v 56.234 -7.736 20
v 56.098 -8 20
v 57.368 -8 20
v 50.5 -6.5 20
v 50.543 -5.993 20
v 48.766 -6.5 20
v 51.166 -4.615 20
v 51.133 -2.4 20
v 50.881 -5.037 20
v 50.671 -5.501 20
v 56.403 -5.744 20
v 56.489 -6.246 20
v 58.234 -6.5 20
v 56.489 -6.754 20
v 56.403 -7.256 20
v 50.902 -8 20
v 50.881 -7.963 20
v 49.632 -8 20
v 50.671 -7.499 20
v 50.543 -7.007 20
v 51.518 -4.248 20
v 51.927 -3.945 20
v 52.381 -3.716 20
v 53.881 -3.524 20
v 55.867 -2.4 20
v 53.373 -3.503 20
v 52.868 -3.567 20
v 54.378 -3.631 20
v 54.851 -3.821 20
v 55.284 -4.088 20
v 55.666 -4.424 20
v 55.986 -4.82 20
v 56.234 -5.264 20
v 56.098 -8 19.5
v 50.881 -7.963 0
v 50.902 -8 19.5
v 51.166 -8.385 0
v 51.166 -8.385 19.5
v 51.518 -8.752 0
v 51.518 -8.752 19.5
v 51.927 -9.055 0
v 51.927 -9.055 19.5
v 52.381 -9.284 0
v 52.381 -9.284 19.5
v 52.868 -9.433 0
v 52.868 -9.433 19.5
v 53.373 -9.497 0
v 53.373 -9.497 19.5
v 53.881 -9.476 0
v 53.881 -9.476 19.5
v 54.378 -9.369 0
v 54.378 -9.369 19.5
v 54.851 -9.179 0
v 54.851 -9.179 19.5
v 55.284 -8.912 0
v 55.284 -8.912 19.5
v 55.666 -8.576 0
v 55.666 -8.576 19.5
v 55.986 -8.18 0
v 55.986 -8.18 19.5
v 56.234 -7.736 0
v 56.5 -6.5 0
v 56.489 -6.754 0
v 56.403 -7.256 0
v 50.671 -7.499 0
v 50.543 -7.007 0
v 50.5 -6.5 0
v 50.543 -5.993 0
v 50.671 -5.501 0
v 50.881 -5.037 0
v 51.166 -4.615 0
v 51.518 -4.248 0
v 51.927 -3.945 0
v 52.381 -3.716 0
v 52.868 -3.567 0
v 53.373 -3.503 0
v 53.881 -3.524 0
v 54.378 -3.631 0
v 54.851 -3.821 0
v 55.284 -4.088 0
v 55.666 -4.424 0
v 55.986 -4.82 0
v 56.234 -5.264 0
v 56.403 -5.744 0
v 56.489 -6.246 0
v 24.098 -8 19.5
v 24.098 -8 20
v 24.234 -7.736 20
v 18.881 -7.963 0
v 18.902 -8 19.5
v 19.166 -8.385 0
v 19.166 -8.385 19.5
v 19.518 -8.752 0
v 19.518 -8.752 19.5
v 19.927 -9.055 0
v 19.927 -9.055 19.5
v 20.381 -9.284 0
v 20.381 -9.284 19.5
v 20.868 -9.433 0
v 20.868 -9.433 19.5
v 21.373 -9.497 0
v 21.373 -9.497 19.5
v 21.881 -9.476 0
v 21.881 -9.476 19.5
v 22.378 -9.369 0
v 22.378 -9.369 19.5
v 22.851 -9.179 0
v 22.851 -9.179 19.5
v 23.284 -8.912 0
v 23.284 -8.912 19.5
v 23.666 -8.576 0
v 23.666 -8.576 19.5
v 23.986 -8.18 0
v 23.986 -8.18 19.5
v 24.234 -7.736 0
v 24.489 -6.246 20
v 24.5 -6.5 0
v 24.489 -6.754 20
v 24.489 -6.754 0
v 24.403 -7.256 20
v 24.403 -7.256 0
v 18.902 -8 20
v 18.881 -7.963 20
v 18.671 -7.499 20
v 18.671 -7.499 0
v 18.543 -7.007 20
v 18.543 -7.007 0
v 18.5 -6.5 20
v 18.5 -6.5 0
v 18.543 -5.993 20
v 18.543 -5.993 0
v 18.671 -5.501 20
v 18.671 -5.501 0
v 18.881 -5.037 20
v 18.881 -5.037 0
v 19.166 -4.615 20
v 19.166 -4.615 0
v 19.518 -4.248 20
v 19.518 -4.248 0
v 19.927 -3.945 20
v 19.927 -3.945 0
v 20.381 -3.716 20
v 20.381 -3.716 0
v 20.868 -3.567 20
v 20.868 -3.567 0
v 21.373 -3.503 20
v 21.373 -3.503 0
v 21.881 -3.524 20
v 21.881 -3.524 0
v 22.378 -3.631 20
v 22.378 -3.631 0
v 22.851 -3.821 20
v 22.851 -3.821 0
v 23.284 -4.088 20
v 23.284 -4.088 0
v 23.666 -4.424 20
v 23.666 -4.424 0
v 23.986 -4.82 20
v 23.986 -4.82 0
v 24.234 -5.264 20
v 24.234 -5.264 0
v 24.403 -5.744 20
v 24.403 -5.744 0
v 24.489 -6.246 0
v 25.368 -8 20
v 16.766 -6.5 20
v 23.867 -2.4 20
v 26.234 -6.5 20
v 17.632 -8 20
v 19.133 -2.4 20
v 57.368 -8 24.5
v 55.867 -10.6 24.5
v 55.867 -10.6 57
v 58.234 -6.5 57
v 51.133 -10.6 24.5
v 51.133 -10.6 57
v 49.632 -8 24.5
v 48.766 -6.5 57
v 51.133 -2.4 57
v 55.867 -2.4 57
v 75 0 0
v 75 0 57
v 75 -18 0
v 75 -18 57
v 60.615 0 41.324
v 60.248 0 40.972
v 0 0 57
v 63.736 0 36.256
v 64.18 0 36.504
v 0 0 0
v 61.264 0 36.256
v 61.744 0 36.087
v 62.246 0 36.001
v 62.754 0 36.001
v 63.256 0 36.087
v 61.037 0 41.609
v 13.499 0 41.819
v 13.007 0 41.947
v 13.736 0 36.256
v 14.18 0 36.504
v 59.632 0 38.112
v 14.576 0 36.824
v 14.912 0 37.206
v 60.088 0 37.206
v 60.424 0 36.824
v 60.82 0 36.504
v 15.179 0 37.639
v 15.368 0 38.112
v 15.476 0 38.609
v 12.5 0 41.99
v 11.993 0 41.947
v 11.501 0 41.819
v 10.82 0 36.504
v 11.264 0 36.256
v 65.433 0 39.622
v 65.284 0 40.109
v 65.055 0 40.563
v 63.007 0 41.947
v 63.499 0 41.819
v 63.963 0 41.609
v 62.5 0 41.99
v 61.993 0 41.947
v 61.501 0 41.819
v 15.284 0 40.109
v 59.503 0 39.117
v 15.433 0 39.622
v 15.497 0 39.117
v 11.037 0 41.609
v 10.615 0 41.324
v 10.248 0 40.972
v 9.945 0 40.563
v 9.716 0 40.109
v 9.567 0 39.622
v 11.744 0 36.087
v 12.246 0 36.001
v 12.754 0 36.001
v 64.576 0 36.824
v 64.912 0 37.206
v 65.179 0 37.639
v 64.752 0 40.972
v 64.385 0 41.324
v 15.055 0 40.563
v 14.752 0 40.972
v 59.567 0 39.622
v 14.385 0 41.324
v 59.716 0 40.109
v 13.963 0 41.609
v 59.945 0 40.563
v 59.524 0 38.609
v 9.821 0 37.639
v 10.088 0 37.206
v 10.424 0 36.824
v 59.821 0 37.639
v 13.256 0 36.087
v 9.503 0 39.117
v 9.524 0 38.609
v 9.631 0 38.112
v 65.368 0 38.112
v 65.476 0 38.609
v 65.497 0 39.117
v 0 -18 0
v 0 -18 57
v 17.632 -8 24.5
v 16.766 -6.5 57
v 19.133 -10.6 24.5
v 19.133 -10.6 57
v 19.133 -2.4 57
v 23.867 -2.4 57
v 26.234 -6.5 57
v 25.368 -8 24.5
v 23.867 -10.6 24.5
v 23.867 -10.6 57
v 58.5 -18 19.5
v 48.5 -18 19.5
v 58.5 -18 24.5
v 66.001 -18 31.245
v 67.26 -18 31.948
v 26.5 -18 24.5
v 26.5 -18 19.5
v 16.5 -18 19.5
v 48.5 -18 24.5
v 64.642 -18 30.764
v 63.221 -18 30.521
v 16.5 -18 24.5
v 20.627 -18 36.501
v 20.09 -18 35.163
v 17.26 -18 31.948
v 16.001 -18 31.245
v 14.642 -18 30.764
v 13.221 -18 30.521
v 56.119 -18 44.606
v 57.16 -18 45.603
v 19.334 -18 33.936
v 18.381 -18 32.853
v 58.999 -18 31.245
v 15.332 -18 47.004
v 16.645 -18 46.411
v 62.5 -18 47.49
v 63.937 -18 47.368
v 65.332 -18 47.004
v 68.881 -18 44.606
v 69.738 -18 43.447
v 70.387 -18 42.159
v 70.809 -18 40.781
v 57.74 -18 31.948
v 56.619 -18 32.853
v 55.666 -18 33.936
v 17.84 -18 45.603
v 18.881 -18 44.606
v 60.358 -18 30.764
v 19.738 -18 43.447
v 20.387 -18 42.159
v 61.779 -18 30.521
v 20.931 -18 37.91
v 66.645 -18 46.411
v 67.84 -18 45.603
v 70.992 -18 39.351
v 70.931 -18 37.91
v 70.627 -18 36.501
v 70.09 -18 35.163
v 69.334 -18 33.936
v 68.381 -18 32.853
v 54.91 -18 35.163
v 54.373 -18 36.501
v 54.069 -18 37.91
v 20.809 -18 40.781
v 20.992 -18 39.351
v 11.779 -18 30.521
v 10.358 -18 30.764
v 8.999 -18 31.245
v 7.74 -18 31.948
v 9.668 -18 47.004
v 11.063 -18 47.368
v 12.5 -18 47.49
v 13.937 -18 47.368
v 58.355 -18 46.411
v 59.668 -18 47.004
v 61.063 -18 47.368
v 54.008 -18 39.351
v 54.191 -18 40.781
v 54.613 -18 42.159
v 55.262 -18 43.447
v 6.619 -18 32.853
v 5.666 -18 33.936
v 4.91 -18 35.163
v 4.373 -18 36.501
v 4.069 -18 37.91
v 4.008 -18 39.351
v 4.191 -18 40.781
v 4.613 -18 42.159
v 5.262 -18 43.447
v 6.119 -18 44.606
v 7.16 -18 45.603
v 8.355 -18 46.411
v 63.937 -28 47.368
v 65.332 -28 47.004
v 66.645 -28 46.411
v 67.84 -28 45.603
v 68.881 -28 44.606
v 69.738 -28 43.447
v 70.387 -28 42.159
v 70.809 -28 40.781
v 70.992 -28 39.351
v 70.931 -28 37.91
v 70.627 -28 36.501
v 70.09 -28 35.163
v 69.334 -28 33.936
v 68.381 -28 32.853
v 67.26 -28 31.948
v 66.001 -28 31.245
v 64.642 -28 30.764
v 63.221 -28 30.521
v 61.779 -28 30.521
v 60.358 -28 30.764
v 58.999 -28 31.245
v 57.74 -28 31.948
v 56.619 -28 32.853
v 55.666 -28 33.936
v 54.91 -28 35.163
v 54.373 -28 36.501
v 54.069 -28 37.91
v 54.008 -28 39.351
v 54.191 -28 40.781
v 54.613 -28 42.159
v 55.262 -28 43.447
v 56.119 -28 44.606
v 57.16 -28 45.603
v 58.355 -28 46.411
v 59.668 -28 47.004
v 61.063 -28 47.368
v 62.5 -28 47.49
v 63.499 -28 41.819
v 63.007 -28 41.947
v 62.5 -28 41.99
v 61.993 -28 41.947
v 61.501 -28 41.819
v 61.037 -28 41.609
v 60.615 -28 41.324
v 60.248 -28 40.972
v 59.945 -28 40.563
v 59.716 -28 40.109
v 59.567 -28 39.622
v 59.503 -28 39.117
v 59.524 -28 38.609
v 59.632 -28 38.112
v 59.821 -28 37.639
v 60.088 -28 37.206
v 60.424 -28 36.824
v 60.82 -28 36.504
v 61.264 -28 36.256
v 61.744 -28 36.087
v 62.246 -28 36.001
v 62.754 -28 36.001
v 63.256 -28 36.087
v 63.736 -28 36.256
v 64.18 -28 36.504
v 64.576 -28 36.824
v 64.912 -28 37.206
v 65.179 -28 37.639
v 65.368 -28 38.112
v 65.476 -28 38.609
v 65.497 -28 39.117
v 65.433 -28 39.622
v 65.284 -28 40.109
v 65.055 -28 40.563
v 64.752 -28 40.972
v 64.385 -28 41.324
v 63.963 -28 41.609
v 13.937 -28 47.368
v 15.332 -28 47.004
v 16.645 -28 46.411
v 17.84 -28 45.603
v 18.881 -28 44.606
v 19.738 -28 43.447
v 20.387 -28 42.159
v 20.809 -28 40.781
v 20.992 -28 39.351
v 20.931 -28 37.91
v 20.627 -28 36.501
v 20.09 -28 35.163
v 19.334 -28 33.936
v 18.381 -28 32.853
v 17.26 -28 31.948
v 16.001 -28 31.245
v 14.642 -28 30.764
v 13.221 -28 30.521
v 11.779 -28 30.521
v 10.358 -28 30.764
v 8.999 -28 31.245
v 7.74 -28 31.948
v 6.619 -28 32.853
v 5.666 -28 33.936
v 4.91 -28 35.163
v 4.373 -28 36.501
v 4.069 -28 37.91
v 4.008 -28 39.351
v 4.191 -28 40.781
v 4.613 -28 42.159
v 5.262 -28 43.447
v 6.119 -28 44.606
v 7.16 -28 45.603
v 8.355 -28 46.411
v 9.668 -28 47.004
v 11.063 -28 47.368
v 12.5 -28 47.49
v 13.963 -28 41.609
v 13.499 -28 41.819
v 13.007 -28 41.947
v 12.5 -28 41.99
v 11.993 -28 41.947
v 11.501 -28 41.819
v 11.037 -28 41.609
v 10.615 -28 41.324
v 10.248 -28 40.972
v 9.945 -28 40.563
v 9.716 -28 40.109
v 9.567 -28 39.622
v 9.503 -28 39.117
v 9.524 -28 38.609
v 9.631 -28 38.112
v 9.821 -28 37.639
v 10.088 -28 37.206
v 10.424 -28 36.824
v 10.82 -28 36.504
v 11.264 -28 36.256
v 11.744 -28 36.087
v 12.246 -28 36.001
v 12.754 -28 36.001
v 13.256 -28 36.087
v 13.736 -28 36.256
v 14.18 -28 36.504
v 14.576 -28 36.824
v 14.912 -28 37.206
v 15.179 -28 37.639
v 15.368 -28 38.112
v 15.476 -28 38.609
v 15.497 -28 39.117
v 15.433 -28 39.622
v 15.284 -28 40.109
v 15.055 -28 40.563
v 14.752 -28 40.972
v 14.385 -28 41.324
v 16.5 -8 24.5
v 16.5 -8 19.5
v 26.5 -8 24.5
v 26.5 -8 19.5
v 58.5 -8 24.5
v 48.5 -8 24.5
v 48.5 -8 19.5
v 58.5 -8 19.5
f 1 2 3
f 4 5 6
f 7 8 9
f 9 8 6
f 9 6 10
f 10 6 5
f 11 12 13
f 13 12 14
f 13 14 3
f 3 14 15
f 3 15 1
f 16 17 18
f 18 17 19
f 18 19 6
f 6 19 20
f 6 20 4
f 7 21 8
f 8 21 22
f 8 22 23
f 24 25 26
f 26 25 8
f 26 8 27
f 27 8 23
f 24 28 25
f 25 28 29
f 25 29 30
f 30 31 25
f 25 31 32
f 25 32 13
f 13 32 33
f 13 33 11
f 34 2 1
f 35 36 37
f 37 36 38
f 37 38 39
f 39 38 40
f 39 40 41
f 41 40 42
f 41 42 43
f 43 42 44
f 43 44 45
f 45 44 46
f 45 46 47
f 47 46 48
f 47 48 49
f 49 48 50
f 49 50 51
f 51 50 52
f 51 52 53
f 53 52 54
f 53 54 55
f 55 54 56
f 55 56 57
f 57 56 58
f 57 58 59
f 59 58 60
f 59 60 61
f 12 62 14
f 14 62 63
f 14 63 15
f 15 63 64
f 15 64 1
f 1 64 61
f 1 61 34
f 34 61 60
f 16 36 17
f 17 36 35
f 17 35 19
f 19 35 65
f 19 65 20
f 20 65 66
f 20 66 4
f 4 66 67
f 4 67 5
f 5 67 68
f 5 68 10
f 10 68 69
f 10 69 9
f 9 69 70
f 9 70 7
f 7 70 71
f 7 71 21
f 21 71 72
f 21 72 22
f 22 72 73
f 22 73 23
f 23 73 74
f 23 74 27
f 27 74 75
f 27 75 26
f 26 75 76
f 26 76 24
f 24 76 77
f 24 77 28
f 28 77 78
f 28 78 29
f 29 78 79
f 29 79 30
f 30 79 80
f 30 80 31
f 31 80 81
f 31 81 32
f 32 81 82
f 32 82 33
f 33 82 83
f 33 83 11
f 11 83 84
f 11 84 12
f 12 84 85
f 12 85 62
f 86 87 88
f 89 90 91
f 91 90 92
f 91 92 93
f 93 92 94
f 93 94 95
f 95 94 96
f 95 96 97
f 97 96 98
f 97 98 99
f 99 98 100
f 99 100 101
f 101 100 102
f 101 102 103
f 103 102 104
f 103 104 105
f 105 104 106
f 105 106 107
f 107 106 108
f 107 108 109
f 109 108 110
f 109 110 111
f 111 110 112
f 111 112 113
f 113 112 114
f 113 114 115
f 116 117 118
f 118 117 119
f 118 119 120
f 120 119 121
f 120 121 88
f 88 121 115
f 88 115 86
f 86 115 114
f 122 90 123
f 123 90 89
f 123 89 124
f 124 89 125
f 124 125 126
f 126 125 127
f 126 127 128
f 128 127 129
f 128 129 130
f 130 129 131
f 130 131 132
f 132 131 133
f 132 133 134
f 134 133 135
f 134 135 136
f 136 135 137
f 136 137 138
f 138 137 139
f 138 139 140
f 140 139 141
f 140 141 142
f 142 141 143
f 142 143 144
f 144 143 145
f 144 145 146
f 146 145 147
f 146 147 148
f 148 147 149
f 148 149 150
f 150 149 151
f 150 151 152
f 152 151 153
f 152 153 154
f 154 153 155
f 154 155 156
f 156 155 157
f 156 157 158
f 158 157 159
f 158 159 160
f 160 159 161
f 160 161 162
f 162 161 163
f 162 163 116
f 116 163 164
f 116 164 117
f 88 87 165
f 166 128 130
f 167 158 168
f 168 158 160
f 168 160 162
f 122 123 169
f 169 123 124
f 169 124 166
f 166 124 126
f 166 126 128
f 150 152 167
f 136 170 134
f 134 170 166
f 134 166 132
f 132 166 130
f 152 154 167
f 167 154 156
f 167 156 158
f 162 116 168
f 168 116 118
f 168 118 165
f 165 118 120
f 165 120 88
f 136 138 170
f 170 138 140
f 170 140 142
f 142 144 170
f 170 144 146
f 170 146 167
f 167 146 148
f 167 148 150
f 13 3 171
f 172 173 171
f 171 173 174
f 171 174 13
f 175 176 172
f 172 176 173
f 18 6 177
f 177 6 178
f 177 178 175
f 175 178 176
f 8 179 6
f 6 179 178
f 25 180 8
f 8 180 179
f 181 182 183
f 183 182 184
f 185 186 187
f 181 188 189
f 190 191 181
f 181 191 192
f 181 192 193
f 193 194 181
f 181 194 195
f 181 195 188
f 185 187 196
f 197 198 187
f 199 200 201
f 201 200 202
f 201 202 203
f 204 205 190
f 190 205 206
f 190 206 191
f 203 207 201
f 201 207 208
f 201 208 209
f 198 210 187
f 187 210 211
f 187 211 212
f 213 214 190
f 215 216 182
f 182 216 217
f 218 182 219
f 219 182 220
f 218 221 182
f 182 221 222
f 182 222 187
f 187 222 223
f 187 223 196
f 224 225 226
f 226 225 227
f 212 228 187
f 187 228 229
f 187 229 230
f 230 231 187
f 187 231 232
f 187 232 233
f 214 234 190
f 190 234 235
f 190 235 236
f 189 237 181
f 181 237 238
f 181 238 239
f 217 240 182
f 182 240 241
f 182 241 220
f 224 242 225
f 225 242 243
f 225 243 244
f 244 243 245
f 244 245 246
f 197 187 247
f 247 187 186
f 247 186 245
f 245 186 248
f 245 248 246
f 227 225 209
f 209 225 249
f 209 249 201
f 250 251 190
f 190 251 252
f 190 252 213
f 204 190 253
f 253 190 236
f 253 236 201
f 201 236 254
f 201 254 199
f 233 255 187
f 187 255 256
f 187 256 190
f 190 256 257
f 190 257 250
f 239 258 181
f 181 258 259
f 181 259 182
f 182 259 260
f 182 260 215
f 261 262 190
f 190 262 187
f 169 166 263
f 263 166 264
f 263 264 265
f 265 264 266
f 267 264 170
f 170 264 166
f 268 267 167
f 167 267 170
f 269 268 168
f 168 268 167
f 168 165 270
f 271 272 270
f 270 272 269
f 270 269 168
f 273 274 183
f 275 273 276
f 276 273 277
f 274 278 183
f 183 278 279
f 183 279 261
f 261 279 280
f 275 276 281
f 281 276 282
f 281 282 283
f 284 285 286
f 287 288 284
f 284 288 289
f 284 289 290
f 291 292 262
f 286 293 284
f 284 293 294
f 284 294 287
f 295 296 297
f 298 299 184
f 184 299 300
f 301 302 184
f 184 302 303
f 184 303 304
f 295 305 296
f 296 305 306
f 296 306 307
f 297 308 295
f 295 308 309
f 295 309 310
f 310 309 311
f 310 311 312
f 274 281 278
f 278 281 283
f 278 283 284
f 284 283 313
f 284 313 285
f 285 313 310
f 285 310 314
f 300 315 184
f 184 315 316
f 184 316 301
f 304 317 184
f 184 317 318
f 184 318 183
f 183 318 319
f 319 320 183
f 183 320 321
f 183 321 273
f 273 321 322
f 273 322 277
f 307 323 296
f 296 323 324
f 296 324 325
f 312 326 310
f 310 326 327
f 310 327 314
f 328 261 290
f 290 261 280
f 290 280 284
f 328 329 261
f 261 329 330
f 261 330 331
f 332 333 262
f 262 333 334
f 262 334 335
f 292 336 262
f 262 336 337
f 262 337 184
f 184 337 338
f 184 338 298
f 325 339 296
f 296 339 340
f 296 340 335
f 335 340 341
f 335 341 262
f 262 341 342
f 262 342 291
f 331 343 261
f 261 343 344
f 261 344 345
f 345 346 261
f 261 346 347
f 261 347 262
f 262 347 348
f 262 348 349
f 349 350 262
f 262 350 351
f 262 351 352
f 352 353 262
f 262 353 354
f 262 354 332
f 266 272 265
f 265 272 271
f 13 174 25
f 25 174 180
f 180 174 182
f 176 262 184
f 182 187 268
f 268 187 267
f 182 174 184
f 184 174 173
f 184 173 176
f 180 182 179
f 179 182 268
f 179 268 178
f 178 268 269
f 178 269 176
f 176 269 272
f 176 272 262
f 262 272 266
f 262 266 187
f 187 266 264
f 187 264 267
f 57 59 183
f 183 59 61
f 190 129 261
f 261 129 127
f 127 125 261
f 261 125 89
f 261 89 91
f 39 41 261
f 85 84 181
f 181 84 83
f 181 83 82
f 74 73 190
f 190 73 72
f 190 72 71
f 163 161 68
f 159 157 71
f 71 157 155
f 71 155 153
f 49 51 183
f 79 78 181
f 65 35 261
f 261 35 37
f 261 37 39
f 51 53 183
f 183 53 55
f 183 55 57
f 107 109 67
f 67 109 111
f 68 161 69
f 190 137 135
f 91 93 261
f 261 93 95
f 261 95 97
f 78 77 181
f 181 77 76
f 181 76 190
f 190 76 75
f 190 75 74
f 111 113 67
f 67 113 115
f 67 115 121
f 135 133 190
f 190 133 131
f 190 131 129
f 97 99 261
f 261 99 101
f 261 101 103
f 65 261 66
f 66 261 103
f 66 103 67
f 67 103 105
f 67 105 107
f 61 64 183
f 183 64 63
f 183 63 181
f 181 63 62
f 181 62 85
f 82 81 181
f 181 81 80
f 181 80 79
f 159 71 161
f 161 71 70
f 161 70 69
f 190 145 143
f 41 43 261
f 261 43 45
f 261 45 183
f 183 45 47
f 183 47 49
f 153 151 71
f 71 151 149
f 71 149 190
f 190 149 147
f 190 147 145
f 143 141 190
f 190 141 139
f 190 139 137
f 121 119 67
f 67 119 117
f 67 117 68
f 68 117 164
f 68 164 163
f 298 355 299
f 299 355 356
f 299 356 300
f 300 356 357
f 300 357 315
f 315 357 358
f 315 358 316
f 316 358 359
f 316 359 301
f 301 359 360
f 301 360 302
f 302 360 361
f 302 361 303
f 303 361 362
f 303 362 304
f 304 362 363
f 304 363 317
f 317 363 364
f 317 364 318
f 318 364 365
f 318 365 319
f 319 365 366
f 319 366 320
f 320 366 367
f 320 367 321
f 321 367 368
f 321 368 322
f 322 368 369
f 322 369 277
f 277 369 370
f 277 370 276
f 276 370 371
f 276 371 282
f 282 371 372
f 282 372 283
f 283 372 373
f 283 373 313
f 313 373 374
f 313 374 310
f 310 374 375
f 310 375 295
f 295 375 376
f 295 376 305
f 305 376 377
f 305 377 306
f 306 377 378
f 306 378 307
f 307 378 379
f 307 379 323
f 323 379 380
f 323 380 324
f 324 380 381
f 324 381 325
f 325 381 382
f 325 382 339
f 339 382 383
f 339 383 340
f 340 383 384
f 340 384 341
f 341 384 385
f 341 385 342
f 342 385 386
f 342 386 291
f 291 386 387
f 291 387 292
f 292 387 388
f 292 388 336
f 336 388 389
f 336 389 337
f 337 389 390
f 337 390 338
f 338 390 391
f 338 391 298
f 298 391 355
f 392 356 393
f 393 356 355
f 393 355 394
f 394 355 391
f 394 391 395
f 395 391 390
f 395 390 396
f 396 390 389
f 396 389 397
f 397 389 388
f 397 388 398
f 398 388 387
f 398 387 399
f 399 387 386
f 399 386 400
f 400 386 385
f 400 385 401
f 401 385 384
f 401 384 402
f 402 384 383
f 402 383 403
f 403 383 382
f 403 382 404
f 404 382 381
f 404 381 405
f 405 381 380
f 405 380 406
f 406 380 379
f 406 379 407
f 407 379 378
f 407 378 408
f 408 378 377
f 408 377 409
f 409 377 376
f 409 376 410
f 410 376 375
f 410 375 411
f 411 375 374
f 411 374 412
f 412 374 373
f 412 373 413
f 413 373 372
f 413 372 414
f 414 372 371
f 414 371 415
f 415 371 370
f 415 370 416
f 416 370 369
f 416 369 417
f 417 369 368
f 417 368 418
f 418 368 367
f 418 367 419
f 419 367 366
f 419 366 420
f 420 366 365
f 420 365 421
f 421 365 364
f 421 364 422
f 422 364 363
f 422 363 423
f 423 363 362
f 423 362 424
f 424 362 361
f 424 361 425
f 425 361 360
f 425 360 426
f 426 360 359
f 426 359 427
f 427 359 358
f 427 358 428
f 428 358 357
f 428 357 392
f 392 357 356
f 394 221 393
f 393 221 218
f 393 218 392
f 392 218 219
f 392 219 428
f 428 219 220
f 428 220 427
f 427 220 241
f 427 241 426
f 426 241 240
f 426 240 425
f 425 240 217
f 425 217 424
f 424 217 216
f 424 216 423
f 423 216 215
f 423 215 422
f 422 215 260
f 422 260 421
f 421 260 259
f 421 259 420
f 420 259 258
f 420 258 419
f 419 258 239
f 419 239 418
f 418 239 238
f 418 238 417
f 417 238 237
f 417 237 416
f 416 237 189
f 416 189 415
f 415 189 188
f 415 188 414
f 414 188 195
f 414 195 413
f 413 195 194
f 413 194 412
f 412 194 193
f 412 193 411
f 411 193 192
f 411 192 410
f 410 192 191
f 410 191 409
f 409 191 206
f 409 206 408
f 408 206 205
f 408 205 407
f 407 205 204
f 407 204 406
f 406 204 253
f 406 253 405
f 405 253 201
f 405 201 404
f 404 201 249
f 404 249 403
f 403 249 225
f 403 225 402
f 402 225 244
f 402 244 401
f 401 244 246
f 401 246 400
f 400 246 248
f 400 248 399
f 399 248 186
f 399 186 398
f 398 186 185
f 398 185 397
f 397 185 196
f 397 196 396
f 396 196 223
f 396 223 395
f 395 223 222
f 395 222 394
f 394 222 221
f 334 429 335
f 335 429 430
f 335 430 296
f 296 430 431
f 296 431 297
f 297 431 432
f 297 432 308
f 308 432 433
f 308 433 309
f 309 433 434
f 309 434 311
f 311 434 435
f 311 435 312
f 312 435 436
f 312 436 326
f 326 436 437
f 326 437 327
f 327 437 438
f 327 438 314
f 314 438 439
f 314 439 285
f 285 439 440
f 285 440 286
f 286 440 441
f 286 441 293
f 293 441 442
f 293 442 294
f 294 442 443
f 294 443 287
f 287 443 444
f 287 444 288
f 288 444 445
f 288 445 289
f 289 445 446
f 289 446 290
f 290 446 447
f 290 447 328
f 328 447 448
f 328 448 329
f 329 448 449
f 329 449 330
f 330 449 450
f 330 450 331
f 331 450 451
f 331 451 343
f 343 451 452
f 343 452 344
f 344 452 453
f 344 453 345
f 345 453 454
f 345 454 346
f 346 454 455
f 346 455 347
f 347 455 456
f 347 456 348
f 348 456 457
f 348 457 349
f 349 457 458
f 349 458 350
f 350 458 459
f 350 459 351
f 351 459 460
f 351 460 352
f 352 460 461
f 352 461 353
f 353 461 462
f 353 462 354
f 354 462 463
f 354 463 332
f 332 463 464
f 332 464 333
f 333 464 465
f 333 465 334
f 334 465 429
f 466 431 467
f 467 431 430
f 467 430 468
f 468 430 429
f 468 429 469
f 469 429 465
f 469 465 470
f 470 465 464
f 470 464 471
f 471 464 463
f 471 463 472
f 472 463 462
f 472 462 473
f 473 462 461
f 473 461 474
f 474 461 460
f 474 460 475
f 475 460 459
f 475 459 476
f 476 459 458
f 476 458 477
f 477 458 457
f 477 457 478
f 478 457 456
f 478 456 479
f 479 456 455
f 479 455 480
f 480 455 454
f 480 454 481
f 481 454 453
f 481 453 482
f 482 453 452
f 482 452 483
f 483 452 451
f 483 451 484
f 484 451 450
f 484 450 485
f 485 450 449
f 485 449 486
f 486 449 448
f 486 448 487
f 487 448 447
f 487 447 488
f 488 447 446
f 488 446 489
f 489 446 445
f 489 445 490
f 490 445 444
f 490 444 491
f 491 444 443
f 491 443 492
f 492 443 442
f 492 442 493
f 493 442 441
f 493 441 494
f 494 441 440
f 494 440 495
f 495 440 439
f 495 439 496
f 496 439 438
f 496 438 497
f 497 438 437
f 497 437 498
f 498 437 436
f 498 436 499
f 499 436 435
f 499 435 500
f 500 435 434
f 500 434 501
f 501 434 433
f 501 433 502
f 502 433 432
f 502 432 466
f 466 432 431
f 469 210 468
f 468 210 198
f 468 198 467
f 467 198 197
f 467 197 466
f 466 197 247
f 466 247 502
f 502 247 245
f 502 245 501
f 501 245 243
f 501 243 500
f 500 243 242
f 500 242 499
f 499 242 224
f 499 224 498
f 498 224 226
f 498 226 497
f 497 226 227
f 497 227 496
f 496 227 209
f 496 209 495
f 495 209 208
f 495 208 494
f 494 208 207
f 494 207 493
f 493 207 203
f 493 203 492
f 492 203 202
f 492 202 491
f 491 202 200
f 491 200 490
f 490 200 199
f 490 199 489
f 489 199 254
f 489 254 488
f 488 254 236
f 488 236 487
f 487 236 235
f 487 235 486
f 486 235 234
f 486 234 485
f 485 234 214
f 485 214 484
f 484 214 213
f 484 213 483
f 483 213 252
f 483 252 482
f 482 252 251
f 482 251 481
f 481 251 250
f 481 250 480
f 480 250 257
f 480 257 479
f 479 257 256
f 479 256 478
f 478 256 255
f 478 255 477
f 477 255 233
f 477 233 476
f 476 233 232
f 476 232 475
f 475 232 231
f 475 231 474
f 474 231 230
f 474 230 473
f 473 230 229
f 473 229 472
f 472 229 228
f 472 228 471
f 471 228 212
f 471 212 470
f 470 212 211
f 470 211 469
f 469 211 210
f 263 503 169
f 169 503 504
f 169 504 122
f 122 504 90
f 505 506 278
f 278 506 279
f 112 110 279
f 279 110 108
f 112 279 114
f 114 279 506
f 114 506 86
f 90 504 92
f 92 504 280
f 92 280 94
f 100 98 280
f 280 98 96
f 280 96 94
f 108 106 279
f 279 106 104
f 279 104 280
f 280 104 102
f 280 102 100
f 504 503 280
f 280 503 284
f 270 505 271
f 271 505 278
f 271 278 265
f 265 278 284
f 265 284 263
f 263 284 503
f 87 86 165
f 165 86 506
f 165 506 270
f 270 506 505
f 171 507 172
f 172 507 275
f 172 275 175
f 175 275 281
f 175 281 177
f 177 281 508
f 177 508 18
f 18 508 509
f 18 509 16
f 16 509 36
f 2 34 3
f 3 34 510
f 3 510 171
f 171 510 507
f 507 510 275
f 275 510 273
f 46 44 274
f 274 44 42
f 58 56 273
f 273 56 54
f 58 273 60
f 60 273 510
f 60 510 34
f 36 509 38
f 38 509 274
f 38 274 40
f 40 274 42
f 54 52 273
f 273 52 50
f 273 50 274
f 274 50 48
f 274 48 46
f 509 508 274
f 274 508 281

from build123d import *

# Parameters (mm, degrees)
SKETCH1_W           = 75
SKETCH1_H           = 18
BOSS_EXTRUDE1_DEPTH = 57
SKETCH1_3_R         = 3
BOSS_EXTRUDE2_DEPTH = 20
BOSS_EXTRUDE3_START = -18
SKETCH2_R           = 8.5
SKETCH2_R_2         = 3
BOSS_EXTRUDE3_DEPTH = 10
SKETCH2_2_R         = 3
CUT_EXTRUDE3_DEPTH  = 18
SKETCH3_W           = 10
SKETCH3_H           = 5
CUT_EXTRUDE4_DEPTH  = 10


with BuildPart() as part:
    # Sketch1 → Boss-Extrude1 (new body)
    with BuildSketch(Plane.XY):
        with Locations((37.5, -9)):
            Rectangle(SKETCH1_W, SKETCH1_H)
        Polygon((19.132863896, -10.6), (23.867136104, -10.6), (26.234272207, -6.5), (23.867136104, -2.4), (19.132863896, -2.4), (16.765727793, -6.5), align=None, mode=Mode.SUBTRACT)
        Polygon((58.234272207, -6.5), (55.867136104, -10.6), (51.132863896, -10.6), (48.765727793, -6.5), (51.132863896, -2.4), (55.867136104, -2.4), align=None, mode=Mode.SUBTRACT)
    extrude(amount=BOSS_EXTRUDE1_DEPTH)

    # Sketch1<3> → Boss-Extrude2 (add)
    # profile 1 of 2: a face of its own
    with BuildSketch(Plane.XY):
        Polygon((16.765727793, -6.5), (19.132863896, -10.6), (23.867136104, -10.6), (26.234272207, -6.5), (23.867136104, -2.4), (19.132863896, -2.4), align=None)
        with Locations((21.5, -6.5)):
            Circle(SKETCH1_3_R, mode=Mode.SUBTRACT)
    # profile 2 of 2: a face of its own
    with BuildSketch(Plane.XY):
        Polygon((55.867136104, -10.6), (58.234272207, -6.5), (55.867136104, -2.4), (51.132863896, -2.4), (48.765727793, -6.5), (51.132863896, -10.6), align=None)
        with Locations((53.5, -6.5)):
            Circle(SKETCH1_3_R, mode=Mode.SUBTRACT)
    extrude(amount=BOSS_EXTRUDE2_DEPTH)

    # Sketch2 → Boss-Extrude3 (add)
    # profile 1 of 2: a face of its own
    with BuildSketch(Plane(origin=(0, 0, 0), x_dir=(1, 0, 0), z_dir=(0, 1, 0)).offset(BOSS_EXTRUDE3_START)):
        with Locations(Location((12.5, -38.99, 0), (0, 0, 270))):
            Circle(SKETCH2_R)
        with Locations(Location((12.5, -38.99, 0), (0, 0, 270))):
            Circle(SKETCH2_R_2, mode=Mode.SUBTRACT)
    # profile 2 of 2: a face of its own
    with BuildSketch(Plane(origin=(0, 0, 0), x_dir=(1, 0, 0), z_dir=(0, 1, 0)).offset(BOSS_EXTRUDE3_START)):
        with Locations(Location((62.5, -38.99, 0), (0, 0, 270))):
            Circle(SKETCH2_R)
        with Locations(Location((62.5, -38.99, 0), (0, 0, 270))):
            Circle(SKETCH2_R_2, mode=Mode.SUBTRACT)
    extrude(amount=-BOSS_EXTRUDE3_DEPTH)

    # Sketch2<2> → Cut-Extrude3 (cut)
    with BuildSketch(Plane(origin=(0, 0, 0), x_dir=(1, 0, 0), z_dir=(0, 1, 0))):
        with Locations(Location((12.5, -38.99, 0), (0, 0, 270))):
            Circle(SKETCH2_2_R)
        with Locations(Location((62.5, -38.99, 0), (0, 0, 270))):
            Circle(SKETCH2_2_R)
    extrude(amount=-CUT_EXTRUDE3_DEPTH, mode=Mode.SUBTRACT)

    # Sketch3 → Cut-Extrude4 (cut)
    with BuildSketch(Plane.XZ.offset(18)):
        with Locations((21.5, 22)):
            Rectangle(SKETCH3_W, SKETCH3_H)
        with Locations((53.5, 22)):
            Rectangle(SKETCH3_W, SKETCH3_H)
    extrude(amount=-CUT_EXTRUDE4_DEPTH, mode=Mode.SUBTRACT)


solid = part.part
